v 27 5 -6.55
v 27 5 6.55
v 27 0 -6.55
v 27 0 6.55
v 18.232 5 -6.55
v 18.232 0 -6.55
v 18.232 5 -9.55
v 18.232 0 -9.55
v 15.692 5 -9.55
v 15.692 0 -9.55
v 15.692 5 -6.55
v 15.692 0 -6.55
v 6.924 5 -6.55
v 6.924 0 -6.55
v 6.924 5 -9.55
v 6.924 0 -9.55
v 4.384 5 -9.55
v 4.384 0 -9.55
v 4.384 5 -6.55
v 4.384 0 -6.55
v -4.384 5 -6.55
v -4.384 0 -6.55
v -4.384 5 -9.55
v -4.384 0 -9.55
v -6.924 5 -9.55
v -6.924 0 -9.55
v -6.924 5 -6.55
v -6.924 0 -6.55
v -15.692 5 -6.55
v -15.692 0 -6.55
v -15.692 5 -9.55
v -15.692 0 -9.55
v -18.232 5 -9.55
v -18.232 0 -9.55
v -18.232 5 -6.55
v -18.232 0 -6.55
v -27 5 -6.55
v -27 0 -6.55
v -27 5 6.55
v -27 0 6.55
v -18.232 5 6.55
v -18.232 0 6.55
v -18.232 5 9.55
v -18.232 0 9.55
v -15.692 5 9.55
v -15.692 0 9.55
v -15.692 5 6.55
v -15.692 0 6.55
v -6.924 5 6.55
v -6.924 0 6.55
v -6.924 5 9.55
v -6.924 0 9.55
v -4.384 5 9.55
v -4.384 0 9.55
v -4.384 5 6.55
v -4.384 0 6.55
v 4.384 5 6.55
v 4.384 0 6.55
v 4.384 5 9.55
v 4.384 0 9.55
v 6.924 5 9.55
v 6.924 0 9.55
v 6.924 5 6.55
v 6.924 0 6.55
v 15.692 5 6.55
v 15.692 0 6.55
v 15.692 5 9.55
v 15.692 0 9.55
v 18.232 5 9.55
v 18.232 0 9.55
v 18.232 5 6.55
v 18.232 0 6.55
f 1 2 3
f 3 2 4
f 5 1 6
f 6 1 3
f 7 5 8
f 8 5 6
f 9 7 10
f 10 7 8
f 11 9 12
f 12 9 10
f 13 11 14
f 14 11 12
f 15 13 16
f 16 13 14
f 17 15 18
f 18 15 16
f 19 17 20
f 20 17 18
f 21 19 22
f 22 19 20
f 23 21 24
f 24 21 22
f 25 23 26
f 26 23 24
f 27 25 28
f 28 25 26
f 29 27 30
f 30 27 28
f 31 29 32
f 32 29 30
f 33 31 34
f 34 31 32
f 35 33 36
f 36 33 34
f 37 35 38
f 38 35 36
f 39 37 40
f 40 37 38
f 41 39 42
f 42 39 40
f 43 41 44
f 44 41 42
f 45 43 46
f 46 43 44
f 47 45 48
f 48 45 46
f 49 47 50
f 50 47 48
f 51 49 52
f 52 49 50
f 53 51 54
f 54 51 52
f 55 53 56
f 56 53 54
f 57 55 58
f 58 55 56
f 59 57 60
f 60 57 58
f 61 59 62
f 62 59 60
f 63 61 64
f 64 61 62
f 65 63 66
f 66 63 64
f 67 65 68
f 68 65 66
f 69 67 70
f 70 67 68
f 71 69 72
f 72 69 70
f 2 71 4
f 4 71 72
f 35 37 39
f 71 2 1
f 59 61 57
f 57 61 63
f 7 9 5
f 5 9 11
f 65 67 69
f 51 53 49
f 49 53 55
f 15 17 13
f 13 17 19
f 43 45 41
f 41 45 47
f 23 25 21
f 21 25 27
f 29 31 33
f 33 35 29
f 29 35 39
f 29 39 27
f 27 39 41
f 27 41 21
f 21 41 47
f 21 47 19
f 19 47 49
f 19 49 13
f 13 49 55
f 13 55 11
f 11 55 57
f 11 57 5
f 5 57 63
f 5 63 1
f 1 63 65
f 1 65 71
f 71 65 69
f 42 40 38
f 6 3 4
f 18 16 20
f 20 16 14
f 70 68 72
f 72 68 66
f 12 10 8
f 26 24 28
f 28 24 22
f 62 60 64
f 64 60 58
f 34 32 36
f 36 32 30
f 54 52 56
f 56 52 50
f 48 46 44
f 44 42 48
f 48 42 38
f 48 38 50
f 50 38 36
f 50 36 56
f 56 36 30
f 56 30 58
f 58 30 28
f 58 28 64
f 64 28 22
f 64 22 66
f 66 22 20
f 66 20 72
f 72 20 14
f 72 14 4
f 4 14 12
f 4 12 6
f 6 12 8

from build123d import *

# Parameters (mm, degrees)
SKETCH1_W           = 54
SKETCH1_H           = 13.1
SKETCH1_W_2         = 2.54
SKETCH1_H_2         = 3
BOSS_EXTRUDE1_DEPTH = 5


with BuildPart() as part:
    # Sketch1 → Boss-Extrude1 (new body)
    with BuildSketch(Plane(origin=(0, 0, 0), x_dir=(1, 0, 0), z_dir=(0, 1, 0))):
        Rectangle(SKETCH1_W, SKETCH1_H)
        with Locations((-16.962, -8.05)):
            Rectangle(SKETCH1_W_2, SKETCH1_H_2)
        with Locations((-5.654, -8.05)):
            Rectangle(SKETCH1_W_2, SKETCH1_H_2)
        with Locations((5.654, -8.05)):
            Rectangle(SKETCH1_W_2, SKETCH1_H_2)
        with Locations((16.962, -8.05)):
            Rectangle(SKETCH1_W_2, SKETCH1_H_2)
        with Locations((16.962, 8.05)):
            Rectangle(SKETCH1_W_2, SKETCH1_H_2)
        with Locations((5.654, 8.05)):
            Rectangle(SKETCH1_W_2, SKETCH1_H_2)
        with Locations((-5.654, 8.05)):
            Rectangle(SKETCH1_W_2, SKETCH1_H_2)
        with Locations((-16.962, 8.05)):
            Rectangle(SKETCH1_W_2, SKETCH1_H_2)
    extrude(amount=BOSS_EXTRUDE1_DEPTH)


solid = part.part
